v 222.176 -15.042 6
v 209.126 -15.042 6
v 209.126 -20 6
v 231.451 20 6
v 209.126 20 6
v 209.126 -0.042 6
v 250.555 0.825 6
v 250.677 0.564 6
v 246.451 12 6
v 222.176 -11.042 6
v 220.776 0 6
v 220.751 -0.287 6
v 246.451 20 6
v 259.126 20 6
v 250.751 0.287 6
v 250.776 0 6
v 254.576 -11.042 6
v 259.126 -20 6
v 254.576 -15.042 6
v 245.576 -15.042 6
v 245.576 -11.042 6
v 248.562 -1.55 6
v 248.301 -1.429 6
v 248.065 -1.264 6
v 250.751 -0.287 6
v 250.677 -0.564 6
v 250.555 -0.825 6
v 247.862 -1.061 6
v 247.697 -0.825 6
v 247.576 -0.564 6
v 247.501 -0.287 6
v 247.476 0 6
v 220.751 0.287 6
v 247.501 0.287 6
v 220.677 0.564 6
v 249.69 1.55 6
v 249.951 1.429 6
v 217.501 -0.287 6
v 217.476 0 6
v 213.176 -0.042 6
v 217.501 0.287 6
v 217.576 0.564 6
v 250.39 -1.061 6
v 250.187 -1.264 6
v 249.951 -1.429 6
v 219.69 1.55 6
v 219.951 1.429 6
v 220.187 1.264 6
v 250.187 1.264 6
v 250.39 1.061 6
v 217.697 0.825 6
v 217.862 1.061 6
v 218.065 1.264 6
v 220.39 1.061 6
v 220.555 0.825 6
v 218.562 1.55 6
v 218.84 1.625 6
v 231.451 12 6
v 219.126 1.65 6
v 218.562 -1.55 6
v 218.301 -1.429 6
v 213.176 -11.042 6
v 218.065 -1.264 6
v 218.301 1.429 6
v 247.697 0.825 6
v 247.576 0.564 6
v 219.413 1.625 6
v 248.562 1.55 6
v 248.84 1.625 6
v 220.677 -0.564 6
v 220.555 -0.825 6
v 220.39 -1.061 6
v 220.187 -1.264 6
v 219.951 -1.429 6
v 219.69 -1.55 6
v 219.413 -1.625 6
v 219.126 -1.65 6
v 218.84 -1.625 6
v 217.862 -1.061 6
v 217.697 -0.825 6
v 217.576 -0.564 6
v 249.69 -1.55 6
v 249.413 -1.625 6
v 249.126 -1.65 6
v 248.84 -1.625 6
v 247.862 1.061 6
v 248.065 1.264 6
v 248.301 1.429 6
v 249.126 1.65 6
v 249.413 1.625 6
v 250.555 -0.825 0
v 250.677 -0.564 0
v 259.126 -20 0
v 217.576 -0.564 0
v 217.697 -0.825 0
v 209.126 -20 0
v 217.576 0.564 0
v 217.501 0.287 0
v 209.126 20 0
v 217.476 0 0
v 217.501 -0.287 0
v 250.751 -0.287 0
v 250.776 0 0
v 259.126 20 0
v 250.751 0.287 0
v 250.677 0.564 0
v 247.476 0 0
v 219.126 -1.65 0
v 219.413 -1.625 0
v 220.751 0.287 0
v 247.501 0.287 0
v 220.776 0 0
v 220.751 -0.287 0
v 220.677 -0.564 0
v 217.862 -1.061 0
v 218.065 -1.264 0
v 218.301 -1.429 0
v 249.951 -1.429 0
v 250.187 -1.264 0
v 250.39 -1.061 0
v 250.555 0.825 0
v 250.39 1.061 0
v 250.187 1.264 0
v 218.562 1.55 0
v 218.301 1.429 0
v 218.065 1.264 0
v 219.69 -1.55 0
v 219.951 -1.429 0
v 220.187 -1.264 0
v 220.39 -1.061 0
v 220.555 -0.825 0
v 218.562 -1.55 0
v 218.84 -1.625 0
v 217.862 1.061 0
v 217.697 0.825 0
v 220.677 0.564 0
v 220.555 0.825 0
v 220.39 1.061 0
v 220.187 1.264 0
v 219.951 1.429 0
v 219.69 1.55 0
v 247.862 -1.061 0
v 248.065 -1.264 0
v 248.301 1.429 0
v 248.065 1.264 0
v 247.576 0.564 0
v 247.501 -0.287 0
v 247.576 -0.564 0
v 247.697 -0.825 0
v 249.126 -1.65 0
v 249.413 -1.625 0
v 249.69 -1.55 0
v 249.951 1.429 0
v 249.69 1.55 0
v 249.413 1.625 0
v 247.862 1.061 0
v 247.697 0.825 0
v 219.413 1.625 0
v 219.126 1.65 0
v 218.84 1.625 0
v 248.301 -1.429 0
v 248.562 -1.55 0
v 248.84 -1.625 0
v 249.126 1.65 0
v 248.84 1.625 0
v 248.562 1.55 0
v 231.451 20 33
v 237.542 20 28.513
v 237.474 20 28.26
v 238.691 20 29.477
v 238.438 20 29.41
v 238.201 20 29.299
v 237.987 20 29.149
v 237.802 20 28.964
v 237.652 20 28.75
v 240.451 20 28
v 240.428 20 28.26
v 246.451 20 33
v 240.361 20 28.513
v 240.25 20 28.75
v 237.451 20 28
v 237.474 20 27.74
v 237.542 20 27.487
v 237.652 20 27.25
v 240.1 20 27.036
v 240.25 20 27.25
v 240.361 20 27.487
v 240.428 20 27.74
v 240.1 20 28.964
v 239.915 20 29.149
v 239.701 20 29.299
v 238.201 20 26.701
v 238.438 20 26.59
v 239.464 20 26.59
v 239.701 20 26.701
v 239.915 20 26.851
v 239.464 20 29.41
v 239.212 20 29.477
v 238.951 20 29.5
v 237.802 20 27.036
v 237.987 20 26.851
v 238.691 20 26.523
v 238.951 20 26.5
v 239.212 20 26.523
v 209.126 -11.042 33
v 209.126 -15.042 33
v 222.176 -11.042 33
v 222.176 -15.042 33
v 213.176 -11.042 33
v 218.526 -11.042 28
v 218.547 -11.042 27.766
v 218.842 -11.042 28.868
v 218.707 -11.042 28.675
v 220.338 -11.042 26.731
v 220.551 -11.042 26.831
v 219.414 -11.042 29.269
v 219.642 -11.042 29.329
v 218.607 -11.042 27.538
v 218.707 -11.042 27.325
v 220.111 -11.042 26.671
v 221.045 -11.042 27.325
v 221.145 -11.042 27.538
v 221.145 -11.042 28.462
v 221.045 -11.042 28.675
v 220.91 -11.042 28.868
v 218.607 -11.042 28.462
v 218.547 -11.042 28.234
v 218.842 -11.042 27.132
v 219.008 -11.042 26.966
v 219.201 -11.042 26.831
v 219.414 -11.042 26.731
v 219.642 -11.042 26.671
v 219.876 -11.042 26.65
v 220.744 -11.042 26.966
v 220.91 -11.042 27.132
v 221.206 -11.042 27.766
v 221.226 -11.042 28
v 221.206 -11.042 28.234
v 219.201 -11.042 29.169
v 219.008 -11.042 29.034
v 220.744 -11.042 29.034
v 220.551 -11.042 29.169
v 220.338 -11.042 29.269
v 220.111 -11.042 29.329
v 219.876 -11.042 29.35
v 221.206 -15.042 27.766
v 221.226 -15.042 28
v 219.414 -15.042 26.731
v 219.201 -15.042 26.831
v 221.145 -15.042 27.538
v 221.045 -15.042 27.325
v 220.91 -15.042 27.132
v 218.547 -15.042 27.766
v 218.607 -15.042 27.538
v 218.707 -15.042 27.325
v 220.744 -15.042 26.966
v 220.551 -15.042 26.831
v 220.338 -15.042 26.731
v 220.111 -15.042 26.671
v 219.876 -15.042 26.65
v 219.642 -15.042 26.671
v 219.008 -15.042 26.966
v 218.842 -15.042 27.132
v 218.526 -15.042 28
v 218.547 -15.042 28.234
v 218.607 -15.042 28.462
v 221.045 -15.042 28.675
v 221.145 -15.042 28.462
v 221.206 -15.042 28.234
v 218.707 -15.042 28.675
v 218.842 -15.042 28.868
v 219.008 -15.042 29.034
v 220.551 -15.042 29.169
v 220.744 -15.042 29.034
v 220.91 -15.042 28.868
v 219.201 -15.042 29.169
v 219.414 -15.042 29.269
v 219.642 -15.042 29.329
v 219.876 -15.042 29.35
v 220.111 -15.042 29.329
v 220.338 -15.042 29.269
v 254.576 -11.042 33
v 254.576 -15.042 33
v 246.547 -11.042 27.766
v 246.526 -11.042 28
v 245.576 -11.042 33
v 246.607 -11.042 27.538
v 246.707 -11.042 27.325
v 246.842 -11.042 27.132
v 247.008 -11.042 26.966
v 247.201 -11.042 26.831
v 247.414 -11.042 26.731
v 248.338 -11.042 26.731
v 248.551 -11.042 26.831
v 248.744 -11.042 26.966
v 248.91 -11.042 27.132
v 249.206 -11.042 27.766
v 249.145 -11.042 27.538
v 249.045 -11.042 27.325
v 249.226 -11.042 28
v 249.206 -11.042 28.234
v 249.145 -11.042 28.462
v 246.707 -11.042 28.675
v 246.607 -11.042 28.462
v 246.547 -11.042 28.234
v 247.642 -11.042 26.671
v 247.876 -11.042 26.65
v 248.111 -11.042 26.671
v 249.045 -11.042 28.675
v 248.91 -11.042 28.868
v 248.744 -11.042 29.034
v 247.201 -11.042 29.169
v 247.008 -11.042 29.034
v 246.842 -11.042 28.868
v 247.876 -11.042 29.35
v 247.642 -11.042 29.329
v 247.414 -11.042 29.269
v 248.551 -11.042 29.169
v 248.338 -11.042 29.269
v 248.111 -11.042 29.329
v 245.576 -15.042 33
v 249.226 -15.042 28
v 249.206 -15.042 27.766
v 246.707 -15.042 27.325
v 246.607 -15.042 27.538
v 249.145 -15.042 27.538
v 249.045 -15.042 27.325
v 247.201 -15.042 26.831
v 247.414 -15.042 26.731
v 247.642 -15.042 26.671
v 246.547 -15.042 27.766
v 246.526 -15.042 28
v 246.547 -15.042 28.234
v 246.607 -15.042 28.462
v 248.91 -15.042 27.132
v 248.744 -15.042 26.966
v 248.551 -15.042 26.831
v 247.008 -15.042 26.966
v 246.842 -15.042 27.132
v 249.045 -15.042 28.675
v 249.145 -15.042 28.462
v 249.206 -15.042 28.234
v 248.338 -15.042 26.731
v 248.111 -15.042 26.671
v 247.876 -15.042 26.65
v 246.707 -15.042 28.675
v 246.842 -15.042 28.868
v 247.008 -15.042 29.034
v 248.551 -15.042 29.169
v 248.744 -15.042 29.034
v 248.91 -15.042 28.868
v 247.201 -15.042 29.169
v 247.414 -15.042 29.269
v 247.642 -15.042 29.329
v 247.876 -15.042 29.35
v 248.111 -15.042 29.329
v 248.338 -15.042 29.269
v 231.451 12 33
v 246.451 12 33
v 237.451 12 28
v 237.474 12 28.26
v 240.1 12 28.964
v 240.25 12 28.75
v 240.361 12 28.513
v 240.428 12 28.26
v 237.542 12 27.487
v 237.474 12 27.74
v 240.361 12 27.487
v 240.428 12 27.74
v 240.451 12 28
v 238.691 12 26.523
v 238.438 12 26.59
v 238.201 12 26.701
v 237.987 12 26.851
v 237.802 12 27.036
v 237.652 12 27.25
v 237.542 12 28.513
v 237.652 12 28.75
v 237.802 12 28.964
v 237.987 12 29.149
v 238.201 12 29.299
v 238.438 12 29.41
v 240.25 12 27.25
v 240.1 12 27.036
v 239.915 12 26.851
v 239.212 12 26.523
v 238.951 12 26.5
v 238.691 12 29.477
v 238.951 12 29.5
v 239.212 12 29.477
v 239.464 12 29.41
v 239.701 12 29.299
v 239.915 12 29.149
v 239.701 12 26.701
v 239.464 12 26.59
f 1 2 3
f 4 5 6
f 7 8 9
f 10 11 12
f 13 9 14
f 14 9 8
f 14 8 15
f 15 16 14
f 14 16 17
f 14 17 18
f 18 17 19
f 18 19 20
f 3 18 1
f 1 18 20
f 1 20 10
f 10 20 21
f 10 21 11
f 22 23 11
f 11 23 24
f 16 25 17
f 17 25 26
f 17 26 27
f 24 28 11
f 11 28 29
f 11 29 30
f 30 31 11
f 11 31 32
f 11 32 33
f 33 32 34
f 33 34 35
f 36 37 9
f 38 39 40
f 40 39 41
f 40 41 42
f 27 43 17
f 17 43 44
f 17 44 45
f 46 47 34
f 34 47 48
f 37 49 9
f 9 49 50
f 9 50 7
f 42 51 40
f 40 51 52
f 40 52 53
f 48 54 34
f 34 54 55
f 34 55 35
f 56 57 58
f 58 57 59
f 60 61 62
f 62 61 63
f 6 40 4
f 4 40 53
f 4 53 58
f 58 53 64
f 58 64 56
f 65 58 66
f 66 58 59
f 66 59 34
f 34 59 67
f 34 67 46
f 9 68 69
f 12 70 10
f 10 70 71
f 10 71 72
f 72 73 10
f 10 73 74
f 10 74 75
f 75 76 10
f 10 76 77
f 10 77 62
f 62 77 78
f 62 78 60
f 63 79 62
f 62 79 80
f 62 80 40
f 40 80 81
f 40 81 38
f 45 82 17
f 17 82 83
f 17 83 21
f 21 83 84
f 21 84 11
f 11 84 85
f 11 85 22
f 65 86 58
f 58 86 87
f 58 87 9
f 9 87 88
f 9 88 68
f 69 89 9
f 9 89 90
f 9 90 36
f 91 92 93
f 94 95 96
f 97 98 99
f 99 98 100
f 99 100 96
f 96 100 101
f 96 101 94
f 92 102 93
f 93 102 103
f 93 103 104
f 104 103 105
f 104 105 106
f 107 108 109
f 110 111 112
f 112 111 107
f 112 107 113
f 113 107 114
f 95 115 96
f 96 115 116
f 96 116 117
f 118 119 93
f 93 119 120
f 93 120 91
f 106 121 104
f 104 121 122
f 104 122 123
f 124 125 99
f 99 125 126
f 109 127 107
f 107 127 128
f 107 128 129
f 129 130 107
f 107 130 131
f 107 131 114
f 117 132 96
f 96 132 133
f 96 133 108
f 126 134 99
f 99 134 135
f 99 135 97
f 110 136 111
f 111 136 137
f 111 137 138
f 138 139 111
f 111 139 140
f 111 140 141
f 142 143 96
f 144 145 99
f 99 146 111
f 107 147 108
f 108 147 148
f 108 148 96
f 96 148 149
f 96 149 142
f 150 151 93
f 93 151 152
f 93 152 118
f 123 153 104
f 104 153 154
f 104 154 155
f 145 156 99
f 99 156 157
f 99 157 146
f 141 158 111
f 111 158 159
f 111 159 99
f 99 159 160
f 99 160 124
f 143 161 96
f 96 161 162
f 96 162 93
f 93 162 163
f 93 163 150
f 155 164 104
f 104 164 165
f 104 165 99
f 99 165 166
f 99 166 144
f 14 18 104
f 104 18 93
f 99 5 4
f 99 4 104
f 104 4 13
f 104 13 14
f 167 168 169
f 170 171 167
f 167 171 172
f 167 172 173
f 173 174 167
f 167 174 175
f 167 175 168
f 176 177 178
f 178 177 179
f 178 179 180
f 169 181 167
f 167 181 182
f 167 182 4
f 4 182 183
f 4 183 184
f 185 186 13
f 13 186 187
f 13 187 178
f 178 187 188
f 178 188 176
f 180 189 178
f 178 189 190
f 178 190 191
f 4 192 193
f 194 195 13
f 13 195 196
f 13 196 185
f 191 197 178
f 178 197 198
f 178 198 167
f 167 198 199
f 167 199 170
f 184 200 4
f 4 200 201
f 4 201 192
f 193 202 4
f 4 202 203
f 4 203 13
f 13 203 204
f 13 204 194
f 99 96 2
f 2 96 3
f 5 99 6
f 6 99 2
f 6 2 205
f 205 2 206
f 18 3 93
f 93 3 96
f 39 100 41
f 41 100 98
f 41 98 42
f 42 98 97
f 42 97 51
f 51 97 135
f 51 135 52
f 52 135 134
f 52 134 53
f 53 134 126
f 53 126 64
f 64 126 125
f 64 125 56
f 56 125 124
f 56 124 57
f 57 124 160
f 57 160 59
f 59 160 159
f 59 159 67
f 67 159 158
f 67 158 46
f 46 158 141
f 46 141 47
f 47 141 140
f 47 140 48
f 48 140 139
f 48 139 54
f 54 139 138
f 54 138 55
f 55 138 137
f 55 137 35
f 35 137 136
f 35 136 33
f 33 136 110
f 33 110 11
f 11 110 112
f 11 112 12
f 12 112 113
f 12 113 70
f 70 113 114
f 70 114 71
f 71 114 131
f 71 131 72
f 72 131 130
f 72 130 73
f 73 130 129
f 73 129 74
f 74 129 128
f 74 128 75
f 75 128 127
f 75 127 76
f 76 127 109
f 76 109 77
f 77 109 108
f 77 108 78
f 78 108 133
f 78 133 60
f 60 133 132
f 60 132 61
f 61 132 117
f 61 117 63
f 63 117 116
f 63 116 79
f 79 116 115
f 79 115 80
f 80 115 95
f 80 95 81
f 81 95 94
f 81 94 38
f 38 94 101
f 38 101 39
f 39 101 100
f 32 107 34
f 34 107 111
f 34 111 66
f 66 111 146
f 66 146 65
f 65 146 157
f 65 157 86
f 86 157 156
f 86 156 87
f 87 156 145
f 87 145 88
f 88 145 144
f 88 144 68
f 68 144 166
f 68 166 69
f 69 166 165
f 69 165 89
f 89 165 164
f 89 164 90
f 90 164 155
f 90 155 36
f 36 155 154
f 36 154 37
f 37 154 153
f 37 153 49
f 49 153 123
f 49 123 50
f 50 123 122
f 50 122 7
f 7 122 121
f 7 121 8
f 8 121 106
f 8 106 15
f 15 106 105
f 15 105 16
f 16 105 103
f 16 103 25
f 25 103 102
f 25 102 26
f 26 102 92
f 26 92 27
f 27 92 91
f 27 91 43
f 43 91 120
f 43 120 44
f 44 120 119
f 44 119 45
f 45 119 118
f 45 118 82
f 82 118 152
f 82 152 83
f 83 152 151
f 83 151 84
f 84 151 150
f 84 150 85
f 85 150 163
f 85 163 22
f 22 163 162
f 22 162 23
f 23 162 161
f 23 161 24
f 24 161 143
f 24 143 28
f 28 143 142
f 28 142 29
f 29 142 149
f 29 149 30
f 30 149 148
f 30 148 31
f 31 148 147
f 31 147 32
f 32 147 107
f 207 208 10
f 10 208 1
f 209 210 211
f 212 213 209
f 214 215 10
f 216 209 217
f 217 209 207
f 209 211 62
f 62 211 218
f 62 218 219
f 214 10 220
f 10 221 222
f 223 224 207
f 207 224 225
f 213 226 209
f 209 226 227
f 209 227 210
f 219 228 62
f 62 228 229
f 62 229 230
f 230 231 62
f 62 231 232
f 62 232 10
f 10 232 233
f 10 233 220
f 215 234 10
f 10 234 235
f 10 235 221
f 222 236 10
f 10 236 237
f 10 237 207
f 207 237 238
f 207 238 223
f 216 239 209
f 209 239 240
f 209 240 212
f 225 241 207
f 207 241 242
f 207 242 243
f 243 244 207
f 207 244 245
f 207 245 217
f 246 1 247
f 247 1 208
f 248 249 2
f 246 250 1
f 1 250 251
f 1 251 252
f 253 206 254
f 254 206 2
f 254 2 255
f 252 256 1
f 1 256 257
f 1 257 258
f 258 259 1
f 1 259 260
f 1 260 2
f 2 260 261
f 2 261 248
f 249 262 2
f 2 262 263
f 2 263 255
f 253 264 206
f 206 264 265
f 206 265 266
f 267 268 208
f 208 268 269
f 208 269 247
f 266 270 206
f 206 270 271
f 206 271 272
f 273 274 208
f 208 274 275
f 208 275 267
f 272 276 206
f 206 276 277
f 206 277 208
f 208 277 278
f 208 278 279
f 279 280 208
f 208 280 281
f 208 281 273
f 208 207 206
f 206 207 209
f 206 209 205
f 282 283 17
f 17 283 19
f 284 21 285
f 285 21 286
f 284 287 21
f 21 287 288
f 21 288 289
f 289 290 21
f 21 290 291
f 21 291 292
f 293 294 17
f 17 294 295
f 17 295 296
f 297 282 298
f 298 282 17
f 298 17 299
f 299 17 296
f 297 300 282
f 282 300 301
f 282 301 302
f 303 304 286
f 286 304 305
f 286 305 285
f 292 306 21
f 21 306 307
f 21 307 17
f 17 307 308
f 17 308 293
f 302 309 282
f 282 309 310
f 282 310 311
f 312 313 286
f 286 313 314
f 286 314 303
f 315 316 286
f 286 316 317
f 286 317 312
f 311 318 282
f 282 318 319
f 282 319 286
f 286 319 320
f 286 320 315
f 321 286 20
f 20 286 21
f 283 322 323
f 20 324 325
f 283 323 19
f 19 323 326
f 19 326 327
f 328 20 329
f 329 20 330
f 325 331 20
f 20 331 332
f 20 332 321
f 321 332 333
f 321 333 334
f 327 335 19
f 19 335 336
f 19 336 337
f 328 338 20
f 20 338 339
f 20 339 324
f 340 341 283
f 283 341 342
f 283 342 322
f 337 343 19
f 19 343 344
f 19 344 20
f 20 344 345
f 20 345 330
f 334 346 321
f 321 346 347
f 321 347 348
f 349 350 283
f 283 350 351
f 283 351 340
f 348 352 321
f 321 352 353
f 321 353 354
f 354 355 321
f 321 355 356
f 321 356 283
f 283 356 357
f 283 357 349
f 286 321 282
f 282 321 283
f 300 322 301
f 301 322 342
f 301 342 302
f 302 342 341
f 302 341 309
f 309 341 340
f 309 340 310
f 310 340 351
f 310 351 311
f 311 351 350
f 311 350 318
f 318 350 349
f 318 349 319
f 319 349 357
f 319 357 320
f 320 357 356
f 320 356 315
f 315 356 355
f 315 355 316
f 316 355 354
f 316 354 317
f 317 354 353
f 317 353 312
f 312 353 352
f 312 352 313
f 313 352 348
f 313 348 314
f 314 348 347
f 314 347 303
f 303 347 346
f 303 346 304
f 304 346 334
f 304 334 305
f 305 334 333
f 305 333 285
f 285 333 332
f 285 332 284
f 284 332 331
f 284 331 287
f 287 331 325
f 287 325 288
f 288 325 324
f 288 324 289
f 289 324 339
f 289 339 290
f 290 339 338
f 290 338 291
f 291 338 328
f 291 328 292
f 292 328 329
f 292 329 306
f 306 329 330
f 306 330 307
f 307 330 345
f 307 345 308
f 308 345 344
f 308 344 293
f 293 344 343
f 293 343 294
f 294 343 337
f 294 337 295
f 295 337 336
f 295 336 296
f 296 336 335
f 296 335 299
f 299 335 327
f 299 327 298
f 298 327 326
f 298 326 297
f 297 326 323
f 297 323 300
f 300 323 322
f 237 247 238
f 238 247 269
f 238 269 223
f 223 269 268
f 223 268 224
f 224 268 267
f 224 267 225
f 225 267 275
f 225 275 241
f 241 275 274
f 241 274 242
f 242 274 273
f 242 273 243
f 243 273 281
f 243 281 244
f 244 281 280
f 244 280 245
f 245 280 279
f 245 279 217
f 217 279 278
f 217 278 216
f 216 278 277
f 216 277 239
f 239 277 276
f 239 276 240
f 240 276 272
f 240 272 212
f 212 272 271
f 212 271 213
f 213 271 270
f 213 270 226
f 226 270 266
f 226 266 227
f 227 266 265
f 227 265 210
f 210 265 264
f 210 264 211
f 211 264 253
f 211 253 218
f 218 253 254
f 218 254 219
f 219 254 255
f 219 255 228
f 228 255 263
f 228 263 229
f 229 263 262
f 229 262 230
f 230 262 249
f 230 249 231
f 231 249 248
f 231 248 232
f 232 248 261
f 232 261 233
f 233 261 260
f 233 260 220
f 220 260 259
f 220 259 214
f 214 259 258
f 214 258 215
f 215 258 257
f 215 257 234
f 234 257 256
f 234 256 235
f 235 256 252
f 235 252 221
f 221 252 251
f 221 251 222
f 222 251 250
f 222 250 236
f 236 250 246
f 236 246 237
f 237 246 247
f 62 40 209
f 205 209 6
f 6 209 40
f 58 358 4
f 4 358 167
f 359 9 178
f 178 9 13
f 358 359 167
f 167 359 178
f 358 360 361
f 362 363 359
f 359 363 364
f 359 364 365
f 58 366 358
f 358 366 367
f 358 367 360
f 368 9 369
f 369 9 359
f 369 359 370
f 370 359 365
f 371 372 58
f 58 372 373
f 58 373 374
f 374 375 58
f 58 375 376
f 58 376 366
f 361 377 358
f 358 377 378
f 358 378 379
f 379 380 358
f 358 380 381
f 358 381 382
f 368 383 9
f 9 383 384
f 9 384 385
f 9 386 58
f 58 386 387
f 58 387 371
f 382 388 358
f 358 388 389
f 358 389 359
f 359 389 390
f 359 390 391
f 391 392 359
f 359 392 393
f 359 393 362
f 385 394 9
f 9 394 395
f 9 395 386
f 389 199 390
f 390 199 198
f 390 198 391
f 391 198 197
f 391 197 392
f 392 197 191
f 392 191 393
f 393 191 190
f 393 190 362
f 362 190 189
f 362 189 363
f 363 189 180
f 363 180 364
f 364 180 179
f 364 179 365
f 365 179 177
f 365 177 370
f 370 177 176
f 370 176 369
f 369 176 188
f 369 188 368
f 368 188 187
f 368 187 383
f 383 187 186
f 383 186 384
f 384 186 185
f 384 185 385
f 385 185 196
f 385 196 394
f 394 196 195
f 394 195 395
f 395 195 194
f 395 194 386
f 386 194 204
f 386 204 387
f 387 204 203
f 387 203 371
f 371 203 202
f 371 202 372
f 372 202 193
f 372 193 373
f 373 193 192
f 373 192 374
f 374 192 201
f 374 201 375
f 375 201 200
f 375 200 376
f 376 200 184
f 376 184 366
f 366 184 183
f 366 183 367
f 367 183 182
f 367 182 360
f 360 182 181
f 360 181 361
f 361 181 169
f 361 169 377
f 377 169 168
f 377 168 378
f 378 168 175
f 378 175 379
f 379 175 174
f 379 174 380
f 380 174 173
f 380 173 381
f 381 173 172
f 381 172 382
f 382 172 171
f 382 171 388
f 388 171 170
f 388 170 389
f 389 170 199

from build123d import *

# Parameters (mm, degrees)
SKETCH_1_W          = 50
SKETCH_1_H          = 40
SKETCH_1_R          = 1.65
EXTRUDE_1_DEPTH     = 6
SKETCH_4_W          = 9
SKETCH_4_H          = 4
EXTRUDE_2_DEPTH     = 27
SKETCH_5_R          = 1.35
CUT_EXTRUDE_1_DEPTH = 10
EXTRUDE_3_DEPTH     = 4.05
SKETCH_8_W          = 15
SKETCH_8_H          = 27
SKETCH_8_R          = 1.5
EXTRUDE_5_DEPTH     = 8


with BuildPart() as part:
    # 草图1 → 凸台-拉伸1 (new body)
    with BuildSketch(Plane.XY):
        with Locations((234.126074566, 0)):
            Rectangle(SKETCH_1_W, SKETCH_1_H)
        with Locations((219.126074566, 0)):
            Circle(SKETCH_1_R, mode=Mode.SUBTRACT)
        with Locations((249.126074566, 0)):
            Circle(SKETCH_1_R, mode=Mode.SUBTRACT)
    extrude(amount=EXTRUDE_1_DEPTH)

    # 草图4 → 凸台-拉伸2 (add)
    with BuildSketch(Plane.XY.offset(6)):
        with Locations((217.676074566, -13.041642787)):
            Rectangle(SKETCH_4_W, SKETCH_4_H)
        with Locations((250.076074566, -13.041642787)):
            Rectangle(SKETCH_4_W, SKETCH_4_H)
    extrude(amount=EXTRUDE_2_DEPTH)

    # 草图5 → 切除-拉伸1 (cut)
    with BuildSketch(Plane.XZ.offset(15.041642787)):
        with Locations((247.876074566, 28)):
            Circle(SKETCH_5_R)
        with Locations(Location((219.876074566, 28, 0), (0, 0, 270))):
            Circle(SKETCH_5_R)
    extrude(amount=-CUT_EXTRUDE_1_DEPTH, mode=Mode.SUBTRACT)

    # 草图6 → 凸台-拉伸3 (add)
    with BuildSketch(Plane.ZY.offset(-213.176074566)):
        Polygon((6, -15.041642787), (6, -0.041642787), (33, -11.041642787), (33, -15.041642787), align=None)
    extrude(amount=EXTRUDE_3_DEPTH)

    # 草图8 → 凸台-拉伸5 (add)
    with BuildSketch(Plane(origin=(0, 20, 0), x_dir=(1, 0, 0), z_dir=(0, 1, 0))):
        with Locations((238.951074566, -19.5)):
            Rectangle(SKETCH_8_W, SKETCH_8_H)
        with Locations(Location((238.951074566, -28, 0), (0, 0, 270))):
            Circle(SKETCH_8_R, mode=Mode.SUBTRACT)
    extrude(amount=-EXTRUDE_5_DEPTH)


solid = part.part
